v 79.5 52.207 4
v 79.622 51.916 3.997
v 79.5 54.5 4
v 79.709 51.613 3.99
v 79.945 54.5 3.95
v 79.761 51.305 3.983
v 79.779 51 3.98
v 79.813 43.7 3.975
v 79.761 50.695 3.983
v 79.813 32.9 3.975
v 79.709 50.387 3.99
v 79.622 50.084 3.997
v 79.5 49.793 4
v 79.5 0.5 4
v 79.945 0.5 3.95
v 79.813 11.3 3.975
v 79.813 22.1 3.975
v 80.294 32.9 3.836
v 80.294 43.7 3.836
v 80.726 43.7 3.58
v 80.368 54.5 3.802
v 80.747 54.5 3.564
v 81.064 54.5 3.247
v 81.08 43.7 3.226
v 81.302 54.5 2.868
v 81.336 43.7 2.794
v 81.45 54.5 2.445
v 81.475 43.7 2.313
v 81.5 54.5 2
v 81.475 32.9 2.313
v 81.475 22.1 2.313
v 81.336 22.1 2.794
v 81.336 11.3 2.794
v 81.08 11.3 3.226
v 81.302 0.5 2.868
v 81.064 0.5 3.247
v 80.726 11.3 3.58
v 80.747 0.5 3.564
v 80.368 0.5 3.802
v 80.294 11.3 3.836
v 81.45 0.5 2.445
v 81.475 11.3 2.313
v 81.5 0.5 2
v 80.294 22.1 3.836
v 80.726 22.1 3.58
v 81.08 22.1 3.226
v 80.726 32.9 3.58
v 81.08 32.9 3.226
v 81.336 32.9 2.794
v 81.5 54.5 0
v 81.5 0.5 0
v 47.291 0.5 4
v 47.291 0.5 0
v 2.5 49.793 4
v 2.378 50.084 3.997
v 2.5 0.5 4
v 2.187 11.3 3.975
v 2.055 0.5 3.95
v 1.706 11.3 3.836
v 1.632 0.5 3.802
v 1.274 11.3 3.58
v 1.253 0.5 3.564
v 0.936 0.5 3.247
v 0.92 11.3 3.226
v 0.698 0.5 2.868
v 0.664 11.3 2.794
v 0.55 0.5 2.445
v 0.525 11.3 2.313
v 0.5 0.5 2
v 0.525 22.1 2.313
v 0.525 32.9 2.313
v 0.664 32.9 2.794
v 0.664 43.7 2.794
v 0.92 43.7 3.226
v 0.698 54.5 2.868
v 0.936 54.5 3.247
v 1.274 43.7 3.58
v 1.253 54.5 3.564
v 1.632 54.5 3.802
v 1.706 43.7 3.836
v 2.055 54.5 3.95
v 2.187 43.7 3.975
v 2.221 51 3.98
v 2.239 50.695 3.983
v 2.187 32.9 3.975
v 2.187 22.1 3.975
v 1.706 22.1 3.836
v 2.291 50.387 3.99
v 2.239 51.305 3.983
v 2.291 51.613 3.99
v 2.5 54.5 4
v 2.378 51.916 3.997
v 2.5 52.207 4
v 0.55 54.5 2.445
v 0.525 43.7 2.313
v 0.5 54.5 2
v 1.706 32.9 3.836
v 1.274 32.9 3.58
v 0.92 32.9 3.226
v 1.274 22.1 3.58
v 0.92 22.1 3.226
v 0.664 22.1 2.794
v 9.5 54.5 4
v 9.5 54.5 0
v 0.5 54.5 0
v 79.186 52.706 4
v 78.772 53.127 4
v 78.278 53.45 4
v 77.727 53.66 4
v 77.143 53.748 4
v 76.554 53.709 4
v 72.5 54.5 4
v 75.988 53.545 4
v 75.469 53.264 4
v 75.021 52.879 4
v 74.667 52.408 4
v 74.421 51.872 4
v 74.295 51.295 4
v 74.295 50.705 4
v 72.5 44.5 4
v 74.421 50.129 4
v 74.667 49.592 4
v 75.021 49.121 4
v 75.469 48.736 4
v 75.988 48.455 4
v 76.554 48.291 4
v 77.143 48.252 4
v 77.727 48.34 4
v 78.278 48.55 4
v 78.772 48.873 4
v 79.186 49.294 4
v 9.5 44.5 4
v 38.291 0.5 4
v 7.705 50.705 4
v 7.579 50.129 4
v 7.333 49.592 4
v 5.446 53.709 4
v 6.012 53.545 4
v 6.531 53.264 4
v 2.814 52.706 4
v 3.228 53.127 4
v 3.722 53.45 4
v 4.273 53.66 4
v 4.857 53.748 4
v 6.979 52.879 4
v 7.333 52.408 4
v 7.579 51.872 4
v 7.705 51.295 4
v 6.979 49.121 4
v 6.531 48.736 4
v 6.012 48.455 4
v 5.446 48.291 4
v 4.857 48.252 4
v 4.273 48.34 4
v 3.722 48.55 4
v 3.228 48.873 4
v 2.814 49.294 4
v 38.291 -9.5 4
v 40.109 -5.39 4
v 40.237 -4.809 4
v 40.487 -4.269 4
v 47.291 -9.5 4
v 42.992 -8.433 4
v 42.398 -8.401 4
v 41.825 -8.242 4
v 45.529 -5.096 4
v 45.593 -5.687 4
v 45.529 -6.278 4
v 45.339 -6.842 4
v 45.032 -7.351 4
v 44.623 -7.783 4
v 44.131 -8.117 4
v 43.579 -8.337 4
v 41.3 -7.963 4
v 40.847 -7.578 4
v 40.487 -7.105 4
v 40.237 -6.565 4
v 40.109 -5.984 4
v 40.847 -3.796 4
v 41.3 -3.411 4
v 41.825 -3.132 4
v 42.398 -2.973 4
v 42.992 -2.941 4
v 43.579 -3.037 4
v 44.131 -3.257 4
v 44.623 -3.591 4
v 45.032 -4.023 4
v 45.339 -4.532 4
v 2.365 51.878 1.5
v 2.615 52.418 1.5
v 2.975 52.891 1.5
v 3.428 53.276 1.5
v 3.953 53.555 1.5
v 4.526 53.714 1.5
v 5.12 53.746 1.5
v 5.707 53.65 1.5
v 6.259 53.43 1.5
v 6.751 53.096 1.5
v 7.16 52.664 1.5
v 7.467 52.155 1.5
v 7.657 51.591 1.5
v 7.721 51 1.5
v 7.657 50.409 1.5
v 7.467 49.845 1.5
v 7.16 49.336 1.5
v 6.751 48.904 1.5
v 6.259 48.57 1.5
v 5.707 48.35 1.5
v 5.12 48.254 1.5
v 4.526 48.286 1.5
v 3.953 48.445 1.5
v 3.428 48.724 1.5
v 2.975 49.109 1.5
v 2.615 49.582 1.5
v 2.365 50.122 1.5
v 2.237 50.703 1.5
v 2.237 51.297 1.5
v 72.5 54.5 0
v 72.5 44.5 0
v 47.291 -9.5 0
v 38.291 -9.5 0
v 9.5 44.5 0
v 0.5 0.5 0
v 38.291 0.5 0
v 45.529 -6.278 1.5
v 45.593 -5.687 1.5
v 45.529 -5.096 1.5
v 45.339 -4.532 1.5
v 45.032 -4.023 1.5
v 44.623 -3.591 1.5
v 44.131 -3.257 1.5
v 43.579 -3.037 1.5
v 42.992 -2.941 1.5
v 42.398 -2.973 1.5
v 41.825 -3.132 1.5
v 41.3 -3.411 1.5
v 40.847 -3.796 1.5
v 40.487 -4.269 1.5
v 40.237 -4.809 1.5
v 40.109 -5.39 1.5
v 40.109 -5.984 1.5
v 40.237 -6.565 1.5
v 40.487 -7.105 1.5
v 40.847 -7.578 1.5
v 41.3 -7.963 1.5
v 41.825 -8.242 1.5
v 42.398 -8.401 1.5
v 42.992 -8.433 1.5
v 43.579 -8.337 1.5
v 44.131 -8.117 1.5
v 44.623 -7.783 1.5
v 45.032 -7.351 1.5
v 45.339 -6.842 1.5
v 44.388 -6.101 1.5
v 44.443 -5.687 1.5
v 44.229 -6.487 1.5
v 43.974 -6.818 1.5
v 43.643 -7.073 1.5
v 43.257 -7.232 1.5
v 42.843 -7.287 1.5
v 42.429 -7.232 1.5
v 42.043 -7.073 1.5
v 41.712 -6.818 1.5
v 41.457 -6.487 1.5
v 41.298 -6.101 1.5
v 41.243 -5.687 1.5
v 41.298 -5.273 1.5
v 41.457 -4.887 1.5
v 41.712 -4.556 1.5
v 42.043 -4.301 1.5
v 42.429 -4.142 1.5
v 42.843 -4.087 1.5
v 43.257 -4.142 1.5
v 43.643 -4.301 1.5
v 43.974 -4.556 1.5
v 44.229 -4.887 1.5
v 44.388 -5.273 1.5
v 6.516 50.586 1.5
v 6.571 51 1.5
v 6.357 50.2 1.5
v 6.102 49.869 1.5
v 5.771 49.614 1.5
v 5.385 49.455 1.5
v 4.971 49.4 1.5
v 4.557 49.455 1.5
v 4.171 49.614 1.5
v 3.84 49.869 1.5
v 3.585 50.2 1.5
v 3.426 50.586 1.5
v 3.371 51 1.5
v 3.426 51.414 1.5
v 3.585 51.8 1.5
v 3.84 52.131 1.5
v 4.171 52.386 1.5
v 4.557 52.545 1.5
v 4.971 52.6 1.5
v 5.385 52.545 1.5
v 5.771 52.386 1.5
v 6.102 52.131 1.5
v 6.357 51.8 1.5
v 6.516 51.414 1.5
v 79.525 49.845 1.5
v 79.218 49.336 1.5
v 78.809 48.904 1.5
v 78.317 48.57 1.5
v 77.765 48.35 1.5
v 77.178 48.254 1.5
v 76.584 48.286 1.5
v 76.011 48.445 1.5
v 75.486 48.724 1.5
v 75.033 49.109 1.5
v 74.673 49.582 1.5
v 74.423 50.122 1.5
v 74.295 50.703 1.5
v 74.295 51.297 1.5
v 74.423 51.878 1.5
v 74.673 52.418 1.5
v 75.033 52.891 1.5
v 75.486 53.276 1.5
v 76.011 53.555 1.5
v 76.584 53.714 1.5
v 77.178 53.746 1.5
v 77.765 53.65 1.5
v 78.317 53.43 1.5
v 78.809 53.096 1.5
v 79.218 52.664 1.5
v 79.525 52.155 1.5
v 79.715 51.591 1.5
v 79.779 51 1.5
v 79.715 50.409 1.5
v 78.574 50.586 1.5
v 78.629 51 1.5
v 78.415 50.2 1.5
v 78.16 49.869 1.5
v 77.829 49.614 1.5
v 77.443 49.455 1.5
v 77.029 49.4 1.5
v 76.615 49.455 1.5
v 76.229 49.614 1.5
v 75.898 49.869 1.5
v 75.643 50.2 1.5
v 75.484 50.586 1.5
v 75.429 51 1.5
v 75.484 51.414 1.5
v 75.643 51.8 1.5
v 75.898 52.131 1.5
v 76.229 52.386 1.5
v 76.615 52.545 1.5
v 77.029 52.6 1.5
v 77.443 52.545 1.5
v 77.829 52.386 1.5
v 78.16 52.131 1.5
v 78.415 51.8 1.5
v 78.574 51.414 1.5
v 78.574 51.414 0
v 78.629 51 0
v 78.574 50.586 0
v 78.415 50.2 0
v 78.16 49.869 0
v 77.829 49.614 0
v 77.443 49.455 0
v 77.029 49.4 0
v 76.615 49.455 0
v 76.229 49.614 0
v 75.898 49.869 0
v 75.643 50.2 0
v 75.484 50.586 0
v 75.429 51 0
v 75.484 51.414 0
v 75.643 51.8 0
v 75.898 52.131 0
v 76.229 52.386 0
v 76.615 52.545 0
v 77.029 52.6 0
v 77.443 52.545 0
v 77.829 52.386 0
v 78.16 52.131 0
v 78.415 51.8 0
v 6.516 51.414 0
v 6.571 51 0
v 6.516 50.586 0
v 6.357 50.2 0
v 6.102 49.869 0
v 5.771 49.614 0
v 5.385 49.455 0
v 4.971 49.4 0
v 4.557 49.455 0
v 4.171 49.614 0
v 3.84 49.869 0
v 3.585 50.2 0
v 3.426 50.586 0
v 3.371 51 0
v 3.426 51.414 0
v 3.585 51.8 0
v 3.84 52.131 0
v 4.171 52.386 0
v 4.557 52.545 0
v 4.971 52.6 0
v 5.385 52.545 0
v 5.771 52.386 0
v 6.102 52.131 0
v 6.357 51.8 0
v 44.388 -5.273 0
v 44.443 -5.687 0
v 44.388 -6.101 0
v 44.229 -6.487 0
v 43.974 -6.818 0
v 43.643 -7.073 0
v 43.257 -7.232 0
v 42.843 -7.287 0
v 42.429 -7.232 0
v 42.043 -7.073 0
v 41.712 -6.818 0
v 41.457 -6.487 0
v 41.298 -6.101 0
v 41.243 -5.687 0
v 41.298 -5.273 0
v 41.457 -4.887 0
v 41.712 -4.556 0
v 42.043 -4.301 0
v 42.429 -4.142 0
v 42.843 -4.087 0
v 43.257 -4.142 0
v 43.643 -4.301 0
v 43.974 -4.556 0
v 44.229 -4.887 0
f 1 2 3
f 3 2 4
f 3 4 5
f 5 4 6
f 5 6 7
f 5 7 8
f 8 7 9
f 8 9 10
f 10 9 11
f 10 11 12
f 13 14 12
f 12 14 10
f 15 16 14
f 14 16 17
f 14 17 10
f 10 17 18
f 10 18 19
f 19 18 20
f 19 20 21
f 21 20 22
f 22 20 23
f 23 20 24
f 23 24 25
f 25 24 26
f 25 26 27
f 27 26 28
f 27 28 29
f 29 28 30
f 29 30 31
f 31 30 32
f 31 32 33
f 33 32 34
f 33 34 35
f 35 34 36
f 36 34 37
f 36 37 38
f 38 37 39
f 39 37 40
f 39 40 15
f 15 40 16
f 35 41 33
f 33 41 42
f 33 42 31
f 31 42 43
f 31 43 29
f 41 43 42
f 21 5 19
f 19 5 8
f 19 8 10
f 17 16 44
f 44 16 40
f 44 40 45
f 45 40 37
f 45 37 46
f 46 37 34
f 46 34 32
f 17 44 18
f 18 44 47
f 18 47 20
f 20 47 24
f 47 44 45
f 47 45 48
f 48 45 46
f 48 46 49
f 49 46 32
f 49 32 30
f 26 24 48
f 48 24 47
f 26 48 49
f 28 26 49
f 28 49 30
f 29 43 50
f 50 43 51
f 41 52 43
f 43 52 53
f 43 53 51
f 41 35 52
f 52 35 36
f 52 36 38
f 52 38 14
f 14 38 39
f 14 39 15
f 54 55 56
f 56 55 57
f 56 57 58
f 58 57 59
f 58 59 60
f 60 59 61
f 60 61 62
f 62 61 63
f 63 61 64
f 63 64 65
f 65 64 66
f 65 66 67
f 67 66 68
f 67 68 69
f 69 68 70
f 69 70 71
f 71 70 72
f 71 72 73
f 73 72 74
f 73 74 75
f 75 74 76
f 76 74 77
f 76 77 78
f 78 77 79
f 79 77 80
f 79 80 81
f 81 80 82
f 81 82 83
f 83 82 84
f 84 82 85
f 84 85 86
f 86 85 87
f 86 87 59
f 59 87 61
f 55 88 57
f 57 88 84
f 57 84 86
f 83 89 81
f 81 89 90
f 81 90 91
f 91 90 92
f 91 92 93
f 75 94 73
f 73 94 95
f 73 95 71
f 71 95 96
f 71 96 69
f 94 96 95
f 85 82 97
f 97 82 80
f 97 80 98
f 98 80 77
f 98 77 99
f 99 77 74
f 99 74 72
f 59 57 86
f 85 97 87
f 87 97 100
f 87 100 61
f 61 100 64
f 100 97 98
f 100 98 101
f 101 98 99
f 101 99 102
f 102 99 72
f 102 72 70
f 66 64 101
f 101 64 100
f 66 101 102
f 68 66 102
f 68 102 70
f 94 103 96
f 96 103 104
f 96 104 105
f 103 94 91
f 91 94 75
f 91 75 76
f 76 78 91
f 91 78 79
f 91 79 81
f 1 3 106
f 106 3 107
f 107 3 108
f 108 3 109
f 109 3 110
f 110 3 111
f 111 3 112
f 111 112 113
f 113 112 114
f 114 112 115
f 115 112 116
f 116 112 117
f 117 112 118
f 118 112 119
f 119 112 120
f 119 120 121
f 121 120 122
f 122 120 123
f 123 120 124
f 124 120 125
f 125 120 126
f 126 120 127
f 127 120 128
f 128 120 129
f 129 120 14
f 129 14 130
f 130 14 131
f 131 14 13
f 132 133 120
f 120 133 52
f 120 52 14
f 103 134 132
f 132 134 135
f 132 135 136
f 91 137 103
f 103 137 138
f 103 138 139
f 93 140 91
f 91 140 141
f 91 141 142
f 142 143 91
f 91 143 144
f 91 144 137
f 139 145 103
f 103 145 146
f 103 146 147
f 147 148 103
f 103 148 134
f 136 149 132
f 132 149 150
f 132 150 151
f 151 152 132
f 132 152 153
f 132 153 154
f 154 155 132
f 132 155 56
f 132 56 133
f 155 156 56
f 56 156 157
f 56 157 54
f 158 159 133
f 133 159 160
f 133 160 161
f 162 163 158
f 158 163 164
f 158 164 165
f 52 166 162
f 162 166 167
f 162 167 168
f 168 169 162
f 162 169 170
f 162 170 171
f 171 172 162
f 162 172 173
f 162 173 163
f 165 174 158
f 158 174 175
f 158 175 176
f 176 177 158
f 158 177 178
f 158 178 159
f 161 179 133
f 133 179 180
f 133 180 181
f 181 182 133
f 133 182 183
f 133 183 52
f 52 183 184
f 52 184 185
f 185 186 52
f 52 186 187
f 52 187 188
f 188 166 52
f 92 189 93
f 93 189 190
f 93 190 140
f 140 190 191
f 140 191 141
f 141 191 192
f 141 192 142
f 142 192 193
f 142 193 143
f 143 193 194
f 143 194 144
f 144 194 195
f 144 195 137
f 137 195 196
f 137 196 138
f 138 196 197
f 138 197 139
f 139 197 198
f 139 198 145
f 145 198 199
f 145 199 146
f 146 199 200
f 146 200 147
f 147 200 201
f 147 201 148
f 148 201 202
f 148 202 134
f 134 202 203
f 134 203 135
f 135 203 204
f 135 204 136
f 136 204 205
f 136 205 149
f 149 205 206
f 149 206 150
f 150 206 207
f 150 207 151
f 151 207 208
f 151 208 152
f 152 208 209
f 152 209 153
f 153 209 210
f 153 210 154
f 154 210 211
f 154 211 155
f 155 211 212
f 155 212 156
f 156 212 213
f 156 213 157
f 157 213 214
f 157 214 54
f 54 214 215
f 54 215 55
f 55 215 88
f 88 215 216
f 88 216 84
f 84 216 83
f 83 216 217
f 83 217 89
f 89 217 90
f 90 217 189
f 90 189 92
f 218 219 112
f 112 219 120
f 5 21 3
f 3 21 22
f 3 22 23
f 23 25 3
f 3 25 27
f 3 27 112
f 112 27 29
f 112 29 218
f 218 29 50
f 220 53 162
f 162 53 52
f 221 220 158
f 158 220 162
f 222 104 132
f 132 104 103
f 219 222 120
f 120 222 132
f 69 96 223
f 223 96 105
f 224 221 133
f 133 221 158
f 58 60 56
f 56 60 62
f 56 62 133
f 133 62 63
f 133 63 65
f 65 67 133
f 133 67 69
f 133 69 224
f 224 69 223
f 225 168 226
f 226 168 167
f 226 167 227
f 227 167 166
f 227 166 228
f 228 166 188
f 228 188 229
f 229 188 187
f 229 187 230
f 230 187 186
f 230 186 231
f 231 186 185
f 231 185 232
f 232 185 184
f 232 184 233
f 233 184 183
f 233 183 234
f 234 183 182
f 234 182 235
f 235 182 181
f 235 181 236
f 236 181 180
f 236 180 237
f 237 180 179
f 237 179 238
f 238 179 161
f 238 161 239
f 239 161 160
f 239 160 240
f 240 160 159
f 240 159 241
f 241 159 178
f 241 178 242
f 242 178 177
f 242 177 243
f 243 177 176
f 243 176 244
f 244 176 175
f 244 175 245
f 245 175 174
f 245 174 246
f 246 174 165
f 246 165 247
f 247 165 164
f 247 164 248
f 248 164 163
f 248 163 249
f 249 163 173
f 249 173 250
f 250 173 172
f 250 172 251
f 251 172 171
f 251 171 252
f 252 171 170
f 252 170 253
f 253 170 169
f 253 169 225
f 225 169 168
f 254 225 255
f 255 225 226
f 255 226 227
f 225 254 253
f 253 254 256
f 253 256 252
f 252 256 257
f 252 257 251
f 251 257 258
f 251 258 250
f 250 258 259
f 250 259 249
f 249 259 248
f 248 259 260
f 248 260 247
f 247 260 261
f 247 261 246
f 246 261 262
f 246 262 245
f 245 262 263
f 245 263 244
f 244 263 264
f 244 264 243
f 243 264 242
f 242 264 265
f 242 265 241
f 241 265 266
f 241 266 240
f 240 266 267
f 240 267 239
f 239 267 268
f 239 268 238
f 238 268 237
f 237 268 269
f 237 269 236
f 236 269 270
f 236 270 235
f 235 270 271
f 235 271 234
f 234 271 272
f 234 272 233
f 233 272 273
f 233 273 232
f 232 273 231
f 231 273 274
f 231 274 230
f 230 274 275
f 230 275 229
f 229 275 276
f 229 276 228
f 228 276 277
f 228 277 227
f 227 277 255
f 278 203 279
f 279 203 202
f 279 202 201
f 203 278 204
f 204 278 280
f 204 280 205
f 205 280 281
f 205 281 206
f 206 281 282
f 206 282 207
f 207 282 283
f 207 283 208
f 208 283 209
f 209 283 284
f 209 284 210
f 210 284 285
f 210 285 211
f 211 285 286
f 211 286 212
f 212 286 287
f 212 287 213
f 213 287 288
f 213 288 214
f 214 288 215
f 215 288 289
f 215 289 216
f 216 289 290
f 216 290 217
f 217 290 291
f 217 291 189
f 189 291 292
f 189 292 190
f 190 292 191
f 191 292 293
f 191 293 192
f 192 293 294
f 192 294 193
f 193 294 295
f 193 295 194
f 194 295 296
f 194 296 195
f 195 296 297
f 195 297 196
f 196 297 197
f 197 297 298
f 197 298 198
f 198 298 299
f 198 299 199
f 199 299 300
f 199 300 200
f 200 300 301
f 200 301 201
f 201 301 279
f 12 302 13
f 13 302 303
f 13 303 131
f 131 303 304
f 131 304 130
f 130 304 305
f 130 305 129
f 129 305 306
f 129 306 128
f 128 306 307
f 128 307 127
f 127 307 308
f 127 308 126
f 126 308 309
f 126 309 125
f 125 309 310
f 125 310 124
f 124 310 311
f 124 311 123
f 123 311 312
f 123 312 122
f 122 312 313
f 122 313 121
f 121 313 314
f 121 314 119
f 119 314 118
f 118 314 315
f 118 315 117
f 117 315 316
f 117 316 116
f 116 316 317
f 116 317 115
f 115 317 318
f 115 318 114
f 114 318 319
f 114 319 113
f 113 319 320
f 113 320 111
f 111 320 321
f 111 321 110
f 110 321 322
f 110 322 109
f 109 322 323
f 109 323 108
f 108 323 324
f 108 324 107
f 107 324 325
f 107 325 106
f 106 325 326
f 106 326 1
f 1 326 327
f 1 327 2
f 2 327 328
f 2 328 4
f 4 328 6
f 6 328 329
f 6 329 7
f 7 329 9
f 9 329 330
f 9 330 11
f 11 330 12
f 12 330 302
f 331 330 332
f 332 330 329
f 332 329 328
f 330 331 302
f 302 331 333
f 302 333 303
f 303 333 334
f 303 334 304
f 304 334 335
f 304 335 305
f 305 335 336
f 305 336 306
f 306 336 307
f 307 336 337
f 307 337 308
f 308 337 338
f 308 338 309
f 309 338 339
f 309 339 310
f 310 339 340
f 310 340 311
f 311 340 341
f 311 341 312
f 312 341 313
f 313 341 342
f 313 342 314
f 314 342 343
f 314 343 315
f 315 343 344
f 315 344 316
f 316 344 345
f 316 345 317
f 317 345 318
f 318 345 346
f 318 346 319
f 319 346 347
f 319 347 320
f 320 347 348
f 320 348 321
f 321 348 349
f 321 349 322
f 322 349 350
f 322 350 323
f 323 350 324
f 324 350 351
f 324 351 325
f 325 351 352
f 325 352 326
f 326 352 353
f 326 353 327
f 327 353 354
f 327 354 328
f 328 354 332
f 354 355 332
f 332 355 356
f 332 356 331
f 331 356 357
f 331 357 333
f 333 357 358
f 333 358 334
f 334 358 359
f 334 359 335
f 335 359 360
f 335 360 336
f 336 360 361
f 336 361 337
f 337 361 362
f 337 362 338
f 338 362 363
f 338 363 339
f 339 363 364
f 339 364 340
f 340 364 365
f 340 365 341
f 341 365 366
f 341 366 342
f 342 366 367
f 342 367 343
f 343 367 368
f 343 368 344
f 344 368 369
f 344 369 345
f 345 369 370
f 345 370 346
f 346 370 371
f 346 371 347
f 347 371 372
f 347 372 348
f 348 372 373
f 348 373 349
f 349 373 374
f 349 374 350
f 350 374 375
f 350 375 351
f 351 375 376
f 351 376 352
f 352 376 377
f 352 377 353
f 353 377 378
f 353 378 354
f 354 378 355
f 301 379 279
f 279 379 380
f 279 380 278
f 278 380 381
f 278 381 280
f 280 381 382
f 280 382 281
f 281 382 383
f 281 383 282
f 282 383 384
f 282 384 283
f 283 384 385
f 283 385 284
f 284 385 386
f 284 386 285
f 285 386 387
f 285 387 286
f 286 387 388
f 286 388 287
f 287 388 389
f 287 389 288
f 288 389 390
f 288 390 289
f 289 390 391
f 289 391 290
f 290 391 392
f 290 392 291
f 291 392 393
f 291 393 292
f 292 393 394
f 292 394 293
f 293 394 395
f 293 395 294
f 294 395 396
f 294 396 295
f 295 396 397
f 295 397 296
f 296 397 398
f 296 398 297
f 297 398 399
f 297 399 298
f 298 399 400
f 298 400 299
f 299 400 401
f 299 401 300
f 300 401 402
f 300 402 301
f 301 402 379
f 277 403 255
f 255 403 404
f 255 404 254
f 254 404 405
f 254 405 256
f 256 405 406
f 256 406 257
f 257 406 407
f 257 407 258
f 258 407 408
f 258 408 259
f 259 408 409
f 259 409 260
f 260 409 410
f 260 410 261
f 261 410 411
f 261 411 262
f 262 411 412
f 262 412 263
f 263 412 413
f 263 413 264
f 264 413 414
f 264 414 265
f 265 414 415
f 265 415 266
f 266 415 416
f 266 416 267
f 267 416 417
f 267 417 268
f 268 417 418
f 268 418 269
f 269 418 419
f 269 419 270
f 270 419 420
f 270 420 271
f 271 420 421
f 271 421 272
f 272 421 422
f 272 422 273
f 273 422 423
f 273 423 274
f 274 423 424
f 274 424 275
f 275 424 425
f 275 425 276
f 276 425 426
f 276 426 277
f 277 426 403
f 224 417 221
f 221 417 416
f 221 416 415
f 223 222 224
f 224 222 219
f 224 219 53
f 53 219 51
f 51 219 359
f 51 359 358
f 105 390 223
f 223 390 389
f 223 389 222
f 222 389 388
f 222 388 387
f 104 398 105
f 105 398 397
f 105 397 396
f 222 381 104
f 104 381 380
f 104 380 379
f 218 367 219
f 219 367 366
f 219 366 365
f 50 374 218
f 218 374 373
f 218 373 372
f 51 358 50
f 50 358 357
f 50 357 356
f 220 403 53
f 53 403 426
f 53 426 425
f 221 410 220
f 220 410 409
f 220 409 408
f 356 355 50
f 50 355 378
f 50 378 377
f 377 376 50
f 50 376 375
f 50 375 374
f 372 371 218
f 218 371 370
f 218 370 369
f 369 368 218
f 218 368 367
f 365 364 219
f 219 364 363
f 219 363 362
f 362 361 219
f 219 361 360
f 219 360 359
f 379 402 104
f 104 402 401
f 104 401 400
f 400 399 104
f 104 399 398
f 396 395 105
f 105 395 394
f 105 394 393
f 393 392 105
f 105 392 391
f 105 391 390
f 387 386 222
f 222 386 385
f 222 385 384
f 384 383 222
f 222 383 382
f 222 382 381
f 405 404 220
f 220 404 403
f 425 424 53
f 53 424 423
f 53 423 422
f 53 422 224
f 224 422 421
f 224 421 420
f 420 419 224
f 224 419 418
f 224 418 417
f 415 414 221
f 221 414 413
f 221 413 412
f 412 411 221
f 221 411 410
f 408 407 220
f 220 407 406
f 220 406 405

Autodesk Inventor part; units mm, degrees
ref_plane "YZ Plane" through (0, 0, 0) normal (1, 0, 0) x (0, 1, 0)
ref_plane "XZ Plane" through (0, 0, 0) normal (0, 1, 0) x (-1, 0, 0)
ref_plane "XY Plane" through (0, 0, 0) normal (0, 0, 1) x (1, 0, 0)
sketch "Sketch1" plane through (0, 0, 0) normal (0, 0, 1) x (1, 0, 0)
  line L0 (82, 0) -> (82, 45)
  line L1 (0, 45) -> (0, 0)
  line L2 (10, 45) -> (10, 55)
  line L3 (10, 55) -> (0, 55)
  line L4 (0, 55) -> (0, 45)
  line L5 (72, 45) -> (72, 55)
  line L6 (72, 55) -> (82, 55)
  line L7 (82, 55) -> (82, 45)
  line L8 (10, 45) -> (72, 45)
  line L9 (0, 0) -> (37.791, 0)
  line L10 (37.791, 0) -> (37.791, -10)
  line L11 (37.791, -10) -> (47.791, -10)
  line L12 (47.791, -10) -> (47.791, 0)
  line L13 (47.791, 0) -> (82, 0)
  circle A0 centre (42.843, -5.687) radius 1.6
  line L14 (0, 45) -> (0, 51)
  line L15 (82, 45) -> (82, 51)
  circle A1 centre (4.971, 51) radius 1.6
  circle A2 centre (77.029, 51) radius 1.6
  dimension "d0" = 82
  dimension "d1" = 45
  dimension "d2" = 10
  dimension "d3" = 10
  dimension "d4" = 10
  dimension "d5" = 10
  dimension "d10" = 37.791
  dimension "d11" = 10
  dimension "d12" = 10
  dimension "d15" = 3.2
  dimension "d16" = 6
  dimension "d20" = 3.2
  dimension "d21" = 3.2
extrude "Extrusion1" add sketch "Sketch1" along normal blind 4
sketch "Sketch3" plane through (0, 0, 4) normal (0, 0, 1) x (1, 0, 0)
  circle A0 centre (4.971, 51) radius 1.6 projected
  circle A1 centre (4.971, 51) radius 2.75
  circle A2 centre (77.029, 51) radius 1.6 projected
  circle A3 centre (77.029, 51) radius 2.75
  circle A4 centre (42.843, -5.687) radius 1.6 projected
  circle A5 centre (42.843, -5.687) radius 2.75
  point P0 (0, 0)
  dimension "d24" = 5.5
  dimension "d25" = 5.5
  dimension "d26" = 5.5
extrude "Extrusion2" cut sketch "Sketch3" against normal blind 2.5
sketch "Sketch4" plane through (0, 0, 4) normal (0, 0, 1) x (1, 0, 0)
  line L0 (10, 55) -> (0, 55) projected
  line L1 (10, 45) -> (10, 55) projected
  line L2 (0, 55) -> (10, 55)
  line L3 (10, 55) -> (10, 54.5)
  line L4 (10, 54.5) -> (0, 54.5)
  line L5 (0, 54.5) -> (0, 55)
  line L6 (0, 0) -> (0, 55) projected
  line L7 (0, 0) -> (37.791, 0) projected
  line L8 (0, 55) -> (0.5, 55)
  line L9 (0.5, 55) -> (0.5, 0)
  line L10 (0.5, 0) -> (0, 0)
  line L11 (0, 0) -> (0, 55)
  line L12 (0, 0) -> (37.791, 0)
  line L13 (37.791, 0) -> (37.791, 0.5)
  line L14 (37.791, 0.5) -> (0, 0.5)
  line L15 (0, 0.5) -> (0, 0)
  line L16 (37.791, 0) -> (37.791, -10) projected
  line L17 (37.791, -10) -> (38.291, -10)
  line L18 (38.291, -10) -> (38.291, 0.5)
  line L19 (38.291, 0.5) -> (37.791, 0.5)
  line L20 (37.791, 0.5) -> (37.791, -10)
  line L21 (47.791, 0) -> (47.791, -10) projected
  line L22 (37.791, -10) -> (47.791, -10)
  line L23 (47.791, -10) -> (47.791, -9.5)
  line L24 (47.791, -9.5) -> (37.791, -9.5)
  line L25 (37.791, -9.5) -> (37.791, -10)
  line L26 (47.791, -10) -> (47.291, -10)
  line L27 (47.291, -10) -> (47.291, 0.5)
  line L28 (47.291, 0.5) -> (47.791, 0.5)
  line L29 (47.791, 0.5) -> (47.791, -10)
  line L30 (82, 0) -> (82, 55) projected
  line L31 (47.291, 0.5) -> (82, 0.5)
  line L32 (82, 0.5) -> (82, 0)
  line L33 (82, 0) -> (47.291, 0)
  line L34 (47.291, 0) -> (47.291, 0.5)
  line L35 (82, 55) -> (72, 55) projected
  line L36 (82, 0) -> (81.5, 0)
  line L37 (81.5, 0) -> (81.5, 55)
  line L38 (81.5, 55) -> (82, 55)
  line L39 (82, 55) -> (82, 0)
  line L40 (72, 55) -> (72, 45) projected
  line L41 (82, 55) -> (72, 55)
  line L42 (72, 55) -> (72, 54.5)
  line L43 (72, 54.5) -> (82, 54.5)
  line L44 (82, 54.5) -> (82, 55)
  line L45 (10, 45) -> (72, 45) projected
  line L46 (10, 45) -> (72, 45)
  line L47 (72, 45) -> (72, 44.5)
  line L48 (72, 44.5) -> (10, 44.5)
  line L49 (10, 44.5) -> (10, 45)
  line L50 (72, 44.5) -> (72.5, 44.5)
  line L51 (72.5, 44.5) -> (72.5, 55)
  line L52 (72.5, 55) -> (72, 55)
  line L53 (72, 55) -> (72, 44.5)
  line L54 (10, 44.5) -> (9.5, 44.5)
  line L55 (9.5, 44.5) -> (9.5, 55)
  line L56 (9.5, 55) -> (10, 55)
  line L57 (10, 55) -> (10, 44.5)
  dimension "d30" = 0.5
  dimension "d31" = 0.5
  dimension "d32" = 0.5
  dimension "d33" = 0.5
  dimension "d34" = 0.5
  dimension "d35" = 0.5
  dimension "d36" = 0.5
  dimension "d37" = 0.5
  dimension "d38" = 0.5
  dimension "d39" = 0.5
  dimension "d40" = 0.5
extrude "Extrusion3" cut sketch "Sketch4" against normal blind 10 contours L1 L4 L55 L0 | L55 L4 L9 L0 | L1 L49 L54 L55 L4 | L9 L4 L5 L0 | L45 L47 L48 L49 | L9 L14 L6 L4 | L40 L43 L51 L50 L47 | L14 L13 L7 L9 | L9 L7 L6 L14 | L40 L35 L51 L43 | L19 L18 L24 L16 L13 | L51 L35 L37 L43 | L43 L30 L31 L37 | L37 L35 L30 L43 | L24 L18 L17 L16 | L24 L27 L22 L18 | L37 L33 L29 L31 | L31 L30 L33 L37 | L27 L33 L21 L24 | L24 L21 L22 L27 | L29 L33 L27 L28
fillet "Fillet2" radius 2 2 edges at (0.5, 27.5, 4) (81.5, 27.5, 4)
properties part number "battery_cover"
